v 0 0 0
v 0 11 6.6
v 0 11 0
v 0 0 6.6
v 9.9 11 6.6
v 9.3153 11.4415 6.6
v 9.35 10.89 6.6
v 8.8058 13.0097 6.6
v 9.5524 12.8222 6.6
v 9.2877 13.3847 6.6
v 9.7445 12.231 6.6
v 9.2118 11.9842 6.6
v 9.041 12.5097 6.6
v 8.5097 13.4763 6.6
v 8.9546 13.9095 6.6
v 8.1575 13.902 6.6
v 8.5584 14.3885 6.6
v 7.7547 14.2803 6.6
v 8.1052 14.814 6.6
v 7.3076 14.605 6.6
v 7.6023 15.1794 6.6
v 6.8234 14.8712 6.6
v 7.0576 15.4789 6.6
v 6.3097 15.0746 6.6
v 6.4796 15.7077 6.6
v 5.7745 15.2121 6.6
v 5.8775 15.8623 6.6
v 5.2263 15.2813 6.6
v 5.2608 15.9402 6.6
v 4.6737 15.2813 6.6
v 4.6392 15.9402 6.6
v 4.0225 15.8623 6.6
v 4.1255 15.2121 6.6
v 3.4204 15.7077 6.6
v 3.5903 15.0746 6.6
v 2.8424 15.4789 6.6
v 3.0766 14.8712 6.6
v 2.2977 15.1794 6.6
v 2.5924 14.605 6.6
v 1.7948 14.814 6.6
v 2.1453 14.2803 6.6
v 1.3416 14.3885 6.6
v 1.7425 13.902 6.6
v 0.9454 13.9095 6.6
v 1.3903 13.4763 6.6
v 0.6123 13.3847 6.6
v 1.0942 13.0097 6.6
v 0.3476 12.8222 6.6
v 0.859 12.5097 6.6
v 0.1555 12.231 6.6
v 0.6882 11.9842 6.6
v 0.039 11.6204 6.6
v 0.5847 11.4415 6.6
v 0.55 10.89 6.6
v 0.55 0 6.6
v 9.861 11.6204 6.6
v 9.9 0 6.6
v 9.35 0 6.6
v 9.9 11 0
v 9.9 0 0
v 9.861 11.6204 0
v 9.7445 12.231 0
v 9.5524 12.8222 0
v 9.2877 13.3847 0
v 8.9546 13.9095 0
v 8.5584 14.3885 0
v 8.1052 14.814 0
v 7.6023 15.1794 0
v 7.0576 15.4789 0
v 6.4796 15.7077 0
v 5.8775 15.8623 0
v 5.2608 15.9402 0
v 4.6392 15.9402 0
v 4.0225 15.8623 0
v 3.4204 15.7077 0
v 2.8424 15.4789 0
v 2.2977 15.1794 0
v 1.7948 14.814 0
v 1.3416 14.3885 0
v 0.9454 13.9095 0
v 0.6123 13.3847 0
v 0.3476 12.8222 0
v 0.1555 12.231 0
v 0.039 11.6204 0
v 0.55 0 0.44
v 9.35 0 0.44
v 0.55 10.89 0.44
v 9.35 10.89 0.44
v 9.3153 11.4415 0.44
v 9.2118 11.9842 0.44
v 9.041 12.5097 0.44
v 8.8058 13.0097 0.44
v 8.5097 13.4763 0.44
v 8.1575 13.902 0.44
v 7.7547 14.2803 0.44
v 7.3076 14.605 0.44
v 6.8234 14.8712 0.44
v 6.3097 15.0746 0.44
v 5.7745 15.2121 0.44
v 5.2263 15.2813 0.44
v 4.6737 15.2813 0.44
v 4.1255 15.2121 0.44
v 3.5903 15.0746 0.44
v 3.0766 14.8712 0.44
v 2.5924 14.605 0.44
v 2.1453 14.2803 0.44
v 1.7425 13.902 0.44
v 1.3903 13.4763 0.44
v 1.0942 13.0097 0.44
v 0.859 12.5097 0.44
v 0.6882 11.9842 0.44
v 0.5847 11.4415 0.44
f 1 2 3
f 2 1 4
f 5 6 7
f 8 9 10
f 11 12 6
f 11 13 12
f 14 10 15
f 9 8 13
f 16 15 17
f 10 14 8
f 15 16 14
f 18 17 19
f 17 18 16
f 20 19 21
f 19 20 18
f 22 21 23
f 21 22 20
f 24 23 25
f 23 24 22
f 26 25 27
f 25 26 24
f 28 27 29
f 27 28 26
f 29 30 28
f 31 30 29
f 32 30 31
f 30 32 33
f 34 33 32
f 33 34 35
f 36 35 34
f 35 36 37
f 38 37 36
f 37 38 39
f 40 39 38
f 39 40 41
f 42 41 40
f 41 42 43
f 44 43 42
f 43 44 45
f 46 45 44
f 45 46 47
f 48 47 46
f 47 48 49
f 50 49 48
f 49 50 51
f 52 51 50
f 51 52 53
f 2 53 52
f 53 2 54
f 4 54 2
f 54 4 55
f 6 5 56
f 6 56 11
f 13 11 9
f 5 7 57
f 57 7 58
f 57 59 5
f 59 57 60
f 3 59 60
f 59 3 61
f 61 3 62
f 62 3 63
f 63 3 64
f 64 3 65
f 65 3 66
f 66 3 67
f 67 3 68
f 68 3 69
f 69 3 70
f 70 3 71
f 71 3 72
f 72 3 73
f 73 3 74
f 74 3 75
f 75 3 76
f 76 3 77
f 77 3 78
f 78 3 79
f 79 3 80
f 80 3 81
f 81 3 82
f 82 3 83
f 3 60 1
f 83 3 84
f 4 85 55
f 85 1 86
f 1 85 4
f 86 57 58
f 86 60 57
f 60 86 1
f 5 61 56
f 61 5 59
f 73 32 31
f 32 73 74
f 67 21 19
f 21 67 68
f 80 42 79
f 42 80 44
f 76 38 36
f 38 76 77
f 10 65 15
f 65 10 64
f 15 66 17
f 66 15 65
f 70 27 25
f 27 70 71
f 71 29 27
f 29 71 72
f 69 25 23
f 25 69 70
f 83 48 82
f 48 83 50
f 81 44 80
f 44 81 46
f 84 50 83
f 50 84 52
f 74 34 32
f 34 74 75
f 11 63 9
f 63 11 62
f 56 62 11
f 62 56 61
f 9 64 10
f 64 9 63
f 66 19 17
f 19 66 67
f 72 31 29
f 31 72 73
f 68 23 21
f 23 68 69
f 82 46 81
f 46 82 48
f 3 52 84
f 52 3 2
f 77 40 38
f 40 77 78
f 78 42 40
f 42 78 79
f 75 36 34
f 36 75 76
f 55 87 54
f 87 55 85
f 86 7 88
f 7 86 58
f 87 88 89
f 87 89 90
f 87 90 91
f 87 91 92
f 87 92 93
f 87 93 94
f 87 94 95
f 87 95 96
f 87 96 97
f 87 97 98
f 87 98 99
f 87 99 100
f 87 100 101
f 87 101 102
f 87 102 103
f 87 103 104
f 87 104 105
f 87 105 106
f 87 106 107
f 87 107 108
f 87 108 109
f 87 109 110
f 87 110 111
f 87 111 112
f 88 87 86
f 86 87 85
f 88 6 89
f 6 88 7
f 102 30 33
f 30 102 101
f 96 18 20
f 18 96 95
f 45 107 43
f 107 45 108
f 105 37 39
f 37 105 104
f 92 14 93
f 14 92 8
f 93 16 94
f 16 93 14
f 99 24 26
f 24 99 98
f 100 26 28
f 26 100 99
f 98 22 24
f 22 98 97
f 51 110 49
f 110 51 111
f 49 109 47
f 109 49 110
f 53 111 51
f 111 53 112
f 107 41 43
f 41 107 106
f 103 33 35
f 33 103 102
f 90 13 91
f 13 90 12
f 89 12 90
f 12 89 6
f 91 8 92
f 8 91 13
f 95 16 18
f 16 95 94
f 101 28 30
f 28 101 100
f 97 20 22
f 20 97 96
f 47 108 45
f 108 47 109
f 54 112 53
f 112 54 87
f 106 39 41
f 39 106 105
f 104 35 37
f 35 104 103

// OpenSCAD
$fn=50;

scale(1.1){
    difference(){
        union() {
            cube([9,10,6]);
            translate([4.5,10,0]) {
                cylinder(h=6, r=4.5);
            }
        }

        translate([0.5, -0.1, 0.4]){
            union() {
                cube([8,10,7]);
                translate([4,10,0]) {
                    cylinder(h=7, r=4);
                }
            }
        }
    }
}
